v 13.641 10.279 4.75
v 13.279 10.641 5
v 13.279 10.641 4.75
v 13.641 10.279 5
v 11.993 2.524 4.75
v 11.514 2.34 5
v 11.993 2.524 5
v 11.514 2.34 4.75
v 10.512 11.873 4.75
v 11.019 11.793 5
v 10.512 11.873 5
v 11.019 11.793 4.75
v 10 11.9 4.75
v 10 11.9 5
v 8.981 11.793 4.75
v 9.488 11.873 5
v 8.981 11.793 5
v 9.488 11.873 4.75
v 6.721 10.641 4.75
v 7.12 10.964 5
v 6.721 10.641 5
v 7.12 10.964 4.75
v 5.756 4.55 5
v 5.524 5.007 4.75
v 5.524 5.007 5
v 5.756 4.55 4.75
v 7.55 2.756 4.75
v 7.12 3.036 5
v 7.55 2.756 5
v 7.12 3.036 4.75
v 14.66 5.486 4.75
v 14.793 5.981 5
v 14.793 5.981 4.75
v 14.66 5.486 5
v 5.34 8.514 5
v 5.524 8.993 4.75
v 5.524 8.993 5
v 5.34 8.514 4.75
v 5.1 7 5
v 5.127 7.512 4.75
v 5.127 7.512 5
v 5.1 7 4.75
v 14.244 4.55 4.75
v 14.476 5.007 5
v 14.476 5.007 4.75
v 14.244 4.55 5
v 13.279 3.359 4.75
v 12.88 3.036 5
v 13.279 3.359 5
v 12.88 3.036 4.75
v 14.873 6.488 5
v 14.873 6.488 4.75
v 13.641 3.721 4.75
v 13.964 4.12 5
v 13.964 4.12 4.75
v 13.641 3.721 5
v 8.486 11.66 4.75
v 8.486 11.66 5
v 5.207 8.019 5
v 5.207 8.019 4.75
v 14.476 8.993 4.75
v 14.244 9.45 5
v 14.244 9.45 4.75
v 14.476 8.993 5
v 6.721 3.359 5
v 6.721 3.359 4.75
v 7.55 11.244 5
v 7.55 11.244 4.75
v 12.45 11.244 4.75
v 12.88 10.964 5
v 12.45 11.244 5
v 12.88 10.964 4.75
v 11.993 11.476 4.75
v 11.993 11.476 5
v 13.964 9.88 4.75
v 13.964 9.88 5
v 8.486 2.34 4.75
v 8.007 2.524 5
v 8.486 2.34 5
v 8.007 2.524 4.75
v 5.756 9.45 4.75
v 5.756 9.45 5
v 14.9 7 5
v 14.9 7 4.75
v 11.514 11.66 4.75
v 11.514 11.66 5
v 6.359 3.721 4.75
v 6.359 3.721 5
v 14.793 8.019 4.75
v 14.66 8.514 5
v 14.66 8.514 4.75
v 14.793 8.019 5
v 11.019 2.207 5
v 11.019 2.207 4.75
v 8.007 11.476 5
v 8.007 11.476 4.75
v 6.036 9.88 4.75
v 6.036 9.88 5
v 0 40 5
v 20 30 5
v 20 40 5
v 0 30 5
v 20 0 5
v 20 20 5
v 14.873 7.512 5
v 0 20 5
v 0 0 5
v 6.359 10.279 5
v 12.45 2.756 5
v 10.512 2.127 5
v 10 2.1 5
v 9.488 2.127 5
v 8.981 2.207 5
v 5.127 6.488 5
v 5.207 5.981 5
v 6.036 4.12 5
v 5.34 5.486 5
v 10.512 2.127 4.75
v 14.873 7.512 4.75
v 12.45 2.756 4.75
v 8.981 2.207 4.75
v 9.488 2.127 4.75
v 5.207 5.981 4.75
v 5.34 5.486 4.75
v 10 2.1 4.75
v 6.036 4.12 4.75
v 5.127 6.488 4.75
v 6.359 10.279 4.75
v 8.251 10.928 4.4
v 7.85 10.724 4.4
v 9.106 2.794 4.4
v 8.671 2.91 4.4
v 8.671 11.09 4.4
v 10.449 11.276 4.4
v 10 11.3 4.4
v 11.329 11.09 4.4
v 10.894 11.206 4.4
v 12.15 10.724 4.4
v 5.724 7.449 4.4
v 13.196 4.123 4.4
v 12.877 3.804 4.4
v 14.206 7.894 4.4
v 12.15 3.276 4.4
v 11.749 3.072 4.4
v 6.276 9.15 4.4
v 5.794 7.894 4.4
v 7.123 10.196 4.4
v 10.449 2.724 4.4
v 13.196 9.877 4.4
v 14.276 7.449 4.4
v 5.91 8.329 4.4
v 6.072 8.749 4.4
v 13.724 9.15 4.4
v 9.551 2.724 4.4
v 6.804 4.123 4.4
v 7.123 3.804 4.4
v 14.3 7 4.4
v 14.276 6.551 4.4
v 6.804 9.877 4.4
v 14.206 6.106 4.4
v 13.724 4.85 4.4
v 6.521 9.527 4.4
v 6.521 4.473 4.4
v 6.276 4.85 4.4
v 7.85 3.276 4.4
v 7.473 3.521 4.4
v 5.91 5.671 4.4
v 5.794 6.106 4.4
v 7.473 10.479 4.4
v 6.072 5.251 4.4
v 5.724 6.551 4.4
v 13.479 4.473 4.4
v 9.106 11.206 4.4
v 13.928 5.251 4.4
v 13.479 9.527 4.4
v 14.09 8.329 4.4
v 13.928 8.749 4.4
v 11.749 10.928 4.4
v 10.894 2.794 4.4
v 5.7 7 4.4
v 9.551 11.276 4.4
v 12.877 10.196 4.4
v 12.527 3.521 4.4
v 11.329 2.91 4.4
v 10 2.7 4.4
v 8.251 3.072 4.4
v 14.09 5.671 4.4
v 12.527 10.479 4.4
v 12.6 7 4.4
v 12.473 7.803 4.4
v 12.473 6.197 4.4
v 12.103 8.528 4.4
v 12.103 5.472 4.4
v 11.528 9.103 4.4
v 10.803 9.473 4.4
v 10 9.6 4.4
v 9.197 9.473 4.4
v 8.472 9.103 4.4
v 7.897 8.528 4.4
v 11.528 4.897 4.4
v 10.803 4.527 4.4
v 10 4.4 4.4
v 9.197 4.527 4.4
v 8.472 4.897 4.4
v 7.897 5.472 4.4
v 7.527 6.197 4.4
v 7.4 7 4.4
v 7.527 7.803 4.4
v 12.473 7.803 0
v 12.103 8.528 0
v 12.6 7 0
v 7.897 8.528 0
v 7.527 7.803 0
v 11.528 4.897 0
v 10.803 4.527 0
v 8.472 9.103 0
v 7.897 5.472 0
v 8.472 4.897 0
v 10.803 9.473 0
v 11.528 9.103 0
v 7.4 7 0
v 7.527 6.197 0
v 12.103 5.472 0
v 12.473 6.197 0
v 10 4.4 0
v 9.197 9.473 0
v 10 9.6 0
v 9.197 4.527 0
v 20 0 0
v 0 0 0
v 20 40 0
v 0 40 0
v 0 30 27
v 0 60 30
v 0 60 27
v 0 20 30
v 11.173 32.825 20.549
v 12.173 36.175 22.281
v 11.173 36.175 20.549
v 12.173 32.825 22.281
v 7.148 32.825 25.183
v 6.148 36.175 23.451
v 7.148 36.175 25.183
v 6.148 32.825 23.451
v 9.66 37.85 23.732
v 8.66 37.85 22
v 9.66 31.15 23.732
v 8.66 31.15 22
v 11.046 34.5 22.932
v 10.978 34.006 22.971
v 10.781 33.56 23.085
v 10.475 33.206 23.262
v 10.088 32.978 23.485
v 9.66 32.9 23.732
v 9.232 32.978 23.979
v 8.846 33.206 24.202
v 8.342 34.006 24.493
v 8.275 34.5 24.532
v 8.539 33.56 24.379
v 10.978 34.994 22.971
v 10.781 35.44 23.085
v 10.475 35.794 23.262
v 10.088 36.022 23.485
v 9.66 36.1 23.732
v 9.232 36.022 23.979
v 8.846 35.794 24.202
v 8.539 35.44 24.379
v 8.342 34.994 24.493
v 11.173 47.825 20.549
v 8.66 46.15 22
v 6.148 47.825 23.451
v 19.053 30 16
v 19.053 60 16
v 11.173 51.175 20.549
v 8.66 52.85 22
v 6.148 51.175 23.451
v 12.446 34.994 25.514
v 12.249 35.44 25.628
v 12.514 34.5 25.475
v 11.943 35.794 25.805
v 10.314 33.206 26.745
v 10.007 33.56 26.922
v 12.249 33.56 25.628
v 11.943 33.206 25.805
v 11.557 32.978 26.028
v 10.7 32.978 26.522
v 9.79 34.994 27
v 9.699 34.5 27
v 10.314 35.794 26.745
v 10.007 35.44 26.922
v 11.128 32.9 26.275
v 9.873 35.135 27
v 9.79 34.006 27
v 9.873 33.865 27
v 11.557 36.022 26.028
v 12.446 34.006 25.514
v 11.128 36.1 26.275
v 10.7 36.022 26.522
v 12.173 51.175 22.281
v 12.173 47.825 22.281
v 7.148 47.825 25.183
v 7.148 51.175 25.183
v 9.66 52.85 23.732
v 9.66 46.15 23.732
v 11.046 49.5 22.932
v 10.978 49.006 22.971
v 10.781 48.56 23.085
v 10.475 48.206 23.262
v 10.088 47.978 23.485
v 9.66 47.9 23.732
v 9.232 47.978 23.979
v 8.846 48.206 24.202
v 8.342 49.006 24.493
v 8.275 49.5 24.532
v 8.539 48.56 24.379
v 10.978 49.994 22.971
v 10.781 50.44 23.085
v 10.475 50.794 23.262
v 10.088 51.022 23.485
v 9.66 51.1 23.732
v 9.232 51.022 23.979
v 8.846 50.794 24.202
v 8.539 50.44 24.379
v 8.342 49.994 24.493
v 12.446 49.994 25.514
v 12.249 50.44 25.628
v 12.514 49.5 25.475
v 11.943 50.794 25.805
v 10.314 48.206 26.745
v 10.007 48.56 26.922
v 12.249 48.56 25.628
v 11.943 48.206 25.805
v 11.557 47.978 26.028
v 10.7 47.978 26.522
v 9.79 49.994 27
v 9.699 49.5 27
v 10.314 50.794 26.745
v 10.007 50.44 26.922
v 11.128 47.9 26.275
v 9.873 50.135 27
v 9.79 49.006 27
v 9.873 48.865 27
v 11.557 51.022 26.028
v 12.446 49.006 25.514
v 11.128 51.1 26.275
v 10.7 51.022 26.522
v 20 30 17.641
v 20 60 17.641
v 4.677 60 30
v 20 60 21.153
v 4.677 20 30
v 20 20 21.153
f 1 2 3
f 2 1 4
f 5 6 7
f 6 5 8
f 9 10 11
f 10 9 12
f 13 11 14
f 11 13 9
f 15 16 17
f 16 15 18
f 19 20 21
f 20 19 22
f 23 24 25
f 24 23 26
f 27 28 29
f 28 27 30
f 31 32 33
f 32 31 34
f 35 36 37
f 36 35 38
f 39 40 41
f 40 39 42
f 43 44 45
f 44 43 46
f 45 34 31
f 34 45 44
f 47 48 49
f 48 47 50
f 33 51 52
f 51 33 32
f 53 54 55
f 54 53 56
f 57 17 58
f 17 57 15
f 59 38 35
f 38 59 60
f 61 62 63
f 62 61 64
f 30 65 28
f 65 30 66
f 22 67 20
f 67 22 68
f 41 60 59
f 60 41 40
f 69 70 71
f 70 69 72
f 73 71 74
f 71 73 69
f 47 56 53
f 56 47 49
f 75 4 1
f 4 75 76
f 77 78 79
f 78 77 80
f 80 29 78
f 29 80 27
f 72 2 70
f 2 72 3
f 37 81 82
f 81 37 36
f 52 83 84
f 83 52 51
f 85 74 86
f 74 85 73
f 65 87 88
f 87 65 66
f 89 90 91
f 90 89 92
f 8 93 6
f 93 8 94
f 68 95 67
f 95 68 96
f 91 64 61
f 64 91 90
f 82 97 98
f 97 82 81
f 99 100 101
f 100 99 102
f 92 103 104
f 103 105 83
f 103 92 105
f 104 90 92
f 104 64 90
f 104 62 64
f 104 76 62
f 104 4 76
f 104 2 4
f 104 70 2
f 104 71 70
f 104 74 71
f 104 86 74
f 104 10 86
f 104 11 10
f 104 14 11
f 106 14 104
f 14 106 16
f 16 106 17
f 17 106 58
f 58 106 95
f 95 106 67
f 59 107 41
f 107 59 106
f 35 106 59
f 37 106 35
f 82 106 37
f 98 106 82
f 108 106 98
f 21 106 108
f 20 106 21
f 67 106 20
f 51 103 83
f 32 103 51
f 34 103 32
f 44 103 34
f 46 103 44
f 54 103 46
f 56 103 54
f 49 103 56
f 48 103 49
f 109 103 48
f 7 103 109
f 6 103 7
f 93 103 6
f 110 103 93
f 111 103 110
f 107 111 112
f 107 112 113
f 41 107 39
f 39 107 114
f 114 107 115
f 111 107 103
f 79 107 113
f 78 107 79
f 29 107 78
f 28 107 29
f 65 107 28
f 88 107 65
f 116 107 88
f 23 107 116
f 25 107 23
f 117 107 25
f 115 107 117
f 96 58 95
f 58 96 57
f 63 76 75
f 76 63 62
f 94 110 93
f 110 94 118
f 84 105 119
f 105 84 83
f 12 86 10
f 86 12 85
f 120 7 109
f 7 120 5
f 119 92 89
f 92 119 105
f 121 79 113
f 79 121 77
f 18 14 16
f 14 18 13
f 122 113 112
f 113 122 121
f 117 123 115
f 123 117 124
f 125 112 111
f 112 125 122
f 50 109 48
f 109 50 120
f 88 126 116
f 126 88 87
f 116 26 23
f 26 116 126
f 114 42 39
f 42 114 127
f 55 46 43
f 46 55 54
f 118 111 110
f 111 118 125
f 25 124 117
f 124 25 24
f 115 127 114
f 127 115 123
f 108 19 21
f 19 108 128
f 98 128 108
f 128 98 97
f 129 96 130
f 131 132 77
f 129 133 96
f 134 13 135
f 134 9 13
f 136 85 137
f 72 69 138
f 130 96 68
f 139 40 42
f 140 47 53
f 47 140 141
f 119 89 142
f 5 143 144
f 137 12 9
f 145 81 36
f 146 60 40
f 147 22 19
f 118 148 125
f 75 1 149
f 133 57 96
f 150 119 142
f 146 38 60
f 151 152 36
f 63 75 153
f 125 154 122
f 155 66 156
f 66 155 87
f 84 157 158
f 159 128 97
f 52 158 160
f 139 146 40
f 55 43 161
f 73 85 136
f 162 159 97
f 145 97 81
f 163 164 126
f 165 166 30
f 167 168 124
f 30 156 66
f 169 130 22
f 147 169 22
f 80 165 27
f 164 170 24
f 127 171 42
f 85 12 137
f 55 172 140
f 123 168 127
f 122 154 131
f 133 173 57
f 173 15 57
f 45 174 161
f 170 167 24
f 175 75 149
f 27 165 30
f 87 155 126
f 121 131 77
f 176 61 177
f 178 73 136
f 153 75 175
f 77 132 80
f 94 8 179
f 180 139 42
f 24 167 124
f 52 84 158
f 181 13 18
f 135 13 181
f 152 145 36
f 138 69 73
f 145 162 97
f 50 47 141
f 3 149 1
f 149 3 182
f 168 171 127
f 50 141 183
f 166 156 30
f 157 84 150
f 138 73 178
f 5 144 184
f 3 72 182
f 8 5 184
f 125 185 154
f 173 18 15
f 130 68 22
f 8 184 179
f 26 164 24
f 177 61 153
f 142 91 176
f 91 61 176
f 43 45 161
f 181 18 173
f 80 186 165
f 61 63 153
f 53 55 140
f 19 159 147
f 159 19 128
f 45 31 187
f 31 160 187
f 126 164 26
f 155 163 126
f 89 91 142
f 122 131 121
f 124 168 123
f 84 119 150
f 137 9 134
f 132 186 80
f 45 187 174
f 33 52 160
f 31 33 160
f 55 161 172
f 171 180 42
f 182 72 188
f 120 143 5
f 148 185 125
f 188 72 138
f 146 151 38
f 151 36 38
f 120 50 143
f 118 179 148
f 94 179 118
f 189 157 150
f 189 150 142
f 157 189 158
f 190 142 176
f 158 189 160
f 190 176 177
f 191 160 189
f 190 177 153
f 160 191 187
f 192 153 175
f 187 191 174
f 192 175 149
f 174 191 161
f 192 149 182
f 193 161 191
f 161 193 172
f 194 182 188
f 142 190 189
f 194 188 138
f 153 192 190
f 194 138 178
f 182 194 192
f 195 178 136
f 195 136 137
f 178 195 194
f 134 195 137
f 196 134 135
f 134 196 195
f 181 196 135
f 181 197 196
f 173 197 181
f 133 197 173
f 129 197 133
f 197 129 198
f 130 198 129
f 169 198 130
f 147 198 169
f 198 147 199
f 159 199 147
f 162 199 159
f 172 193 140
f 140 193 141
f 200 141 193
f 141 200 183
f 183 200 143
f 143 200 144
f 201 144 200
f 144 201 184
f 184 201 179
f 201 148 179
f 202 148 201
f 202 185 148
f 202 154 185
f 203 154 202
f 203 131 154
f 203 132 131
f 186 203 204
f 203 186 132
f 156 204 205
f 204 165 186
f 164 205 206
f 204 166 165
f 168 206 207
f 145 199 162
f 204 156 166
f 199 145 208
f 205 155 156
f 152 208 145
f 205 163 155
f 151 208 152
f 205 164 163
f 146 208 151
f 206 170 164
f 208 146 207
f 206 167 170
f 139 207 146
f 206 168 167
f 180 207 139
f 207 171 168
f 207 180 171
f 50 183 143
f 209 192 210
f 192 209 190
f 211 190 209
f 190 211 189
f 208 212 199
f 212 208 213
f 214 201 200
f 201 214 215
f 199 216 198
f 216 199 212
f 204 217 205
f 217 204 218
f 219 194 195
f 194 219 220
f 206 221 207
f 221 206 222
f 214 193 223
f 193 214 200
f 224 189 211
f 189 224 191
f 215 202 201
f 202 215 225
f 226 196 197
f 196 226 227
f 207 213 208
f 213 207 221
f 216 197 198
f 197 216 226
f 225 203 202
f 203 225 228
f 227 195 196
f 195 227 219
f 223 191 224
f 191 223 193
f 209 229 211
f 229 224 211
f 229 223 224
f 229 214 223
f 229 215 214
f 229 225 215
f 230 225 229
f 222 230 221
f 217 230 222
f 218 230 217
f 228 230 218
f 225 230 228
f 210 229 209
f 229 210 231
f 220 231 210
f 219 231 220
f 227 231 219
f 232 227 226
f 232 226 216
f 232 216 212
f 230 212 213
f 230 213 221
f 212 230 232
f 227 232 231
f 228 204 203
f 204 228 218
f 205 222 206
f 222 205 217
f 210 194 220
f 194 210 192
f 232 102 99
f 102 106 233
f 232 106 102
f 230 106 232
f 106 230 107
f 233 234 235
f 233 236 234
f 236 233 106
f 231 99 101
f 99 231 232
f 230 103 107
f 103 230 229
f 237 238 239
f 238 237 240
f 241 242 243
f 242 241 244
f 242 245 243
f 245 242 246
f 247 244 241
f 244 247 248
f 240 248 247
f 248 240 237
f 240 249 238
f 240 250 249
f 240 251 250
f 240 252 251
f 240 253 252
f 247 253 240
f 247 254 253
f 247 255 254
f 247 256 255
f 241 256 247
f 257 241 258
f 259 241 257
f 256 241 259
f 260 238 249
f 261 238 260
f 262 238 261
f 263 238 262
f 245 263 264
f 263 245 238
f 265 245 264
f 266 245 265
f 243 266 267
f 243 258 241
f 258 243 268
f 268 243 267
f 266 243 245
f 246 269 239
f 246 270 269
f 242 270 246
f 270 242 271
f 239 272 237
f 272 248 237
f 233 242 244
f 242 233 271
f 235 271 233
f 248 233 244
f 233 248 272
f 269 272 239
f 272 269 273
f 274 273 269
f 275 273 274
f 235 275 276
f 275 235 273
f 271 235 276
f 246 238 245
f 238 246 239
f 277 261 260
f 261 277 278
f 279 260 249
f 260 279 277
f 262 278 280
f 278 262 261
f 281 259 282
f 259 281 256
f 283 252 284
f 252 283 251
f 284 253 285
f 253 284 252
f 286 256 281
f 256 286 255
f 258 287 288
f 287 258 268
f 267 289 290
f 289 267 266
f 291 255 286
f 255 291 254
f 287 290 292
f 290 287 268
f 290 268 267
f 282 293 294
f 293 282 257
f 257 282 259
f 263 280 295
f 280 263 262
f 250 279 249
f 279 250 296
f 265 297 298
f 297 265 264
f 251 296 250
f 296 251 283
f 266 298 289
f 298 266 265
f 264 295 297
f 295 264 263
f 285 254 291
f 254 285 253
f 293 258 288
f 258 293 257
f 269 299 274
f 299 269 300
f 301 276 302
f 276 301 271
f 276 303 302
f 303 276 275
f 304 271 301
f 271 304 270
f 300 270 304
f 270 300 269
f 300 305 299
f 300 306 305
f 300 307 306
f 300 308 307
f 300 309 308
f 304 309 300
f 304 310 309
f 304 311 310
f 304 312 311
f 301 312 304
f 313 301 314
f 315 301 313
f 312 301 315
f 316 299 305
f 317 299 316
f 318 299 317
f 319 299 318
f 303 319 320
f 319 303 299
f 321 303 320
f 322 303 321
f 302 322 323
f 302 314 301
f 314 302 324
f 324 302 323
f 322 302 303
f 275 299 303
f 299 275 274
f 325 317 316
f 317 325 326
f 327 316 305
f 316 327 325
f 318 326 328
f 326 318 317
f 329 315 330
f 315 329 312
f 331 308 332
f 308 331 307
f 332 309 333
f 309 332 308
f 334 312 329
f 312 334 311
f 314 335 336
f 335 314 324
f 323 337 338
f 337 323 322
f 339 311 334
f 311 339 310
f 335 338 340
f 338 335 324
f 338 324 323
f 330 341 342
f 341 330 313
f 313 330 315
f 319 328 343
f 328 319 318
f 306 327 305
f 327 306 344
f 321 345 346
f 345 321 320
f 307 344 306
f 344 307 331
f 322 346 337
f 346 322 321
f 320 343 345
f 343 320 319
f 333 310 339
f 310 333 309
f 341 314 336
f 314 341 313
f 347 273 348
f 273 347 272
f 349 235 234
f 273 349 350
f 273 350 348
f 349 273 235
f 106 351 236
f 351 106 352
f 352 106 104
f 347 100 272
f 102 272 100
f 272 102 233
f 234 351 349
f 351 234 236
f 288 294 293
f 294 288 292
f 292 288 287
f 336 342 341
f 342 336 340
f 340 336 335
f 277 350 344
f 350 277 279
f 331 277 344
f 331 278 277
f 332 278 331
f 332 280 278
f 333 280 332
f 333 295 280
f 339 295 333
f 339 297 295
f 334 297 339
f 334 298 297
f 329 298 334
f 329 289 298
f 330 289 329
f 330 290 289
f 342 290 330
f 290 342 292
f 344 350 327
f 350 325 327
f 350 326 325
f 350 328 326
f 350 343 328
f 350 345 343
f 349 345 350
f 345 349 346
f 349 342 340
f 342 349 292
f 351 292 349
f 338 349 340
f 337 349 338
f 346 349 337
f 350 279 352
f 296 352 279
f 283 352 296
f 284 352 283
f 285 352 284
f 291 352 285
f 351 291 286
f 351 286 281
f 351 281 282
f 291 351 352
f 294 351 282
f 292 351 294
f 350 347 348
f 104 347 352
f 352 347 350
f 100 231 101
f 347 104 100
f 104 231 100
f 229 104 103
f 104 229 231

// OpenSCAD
/*
 * non-adjustable, permanent 30 degree mount foot for
 * reprapdiscount_full_graphic_smart_controller_box.scad
 * see https://www.thingiverse.com/thing:861091
 *
 * Use 2x 10mm M3 bolts to attach to the screen housing
 * Use 1x 10mm M5 bolt to attach to a T-nut in a 20mm V-slot
 *
 * Copyright 2021 Alex Volkov <alex@flamy.ca>
 * 
 * License: Attribution-ShareAlike 4.0 International (CC BY-SA)
 * https://creativecommons.org/licenses/by-sa/4.0/
 *
 * Version 1.0 2021-06-24 Initial publication
 */


include <../libs/hardware-recess.scad>;


FOOT_BASE = 40;

//If bottom of the peg should have aluminium profile notch
ALU_MOUNT = false;

mat_thick = 5;
top_shave=27;
module mountcube(x=22, y=30, z=mat_thick){
    cube([x, y, z]);
}


module mount_foot(alu_mount){
    difference(){
        union(){
            mountcube(y=40);
            if(alu_mount){
                translate([0, FOOT_BASE, 0])
                    rotate([180, 0,0 ])
                        alu_connector(FOOT_BASE, 0);
            }
        }
        if (alu_mount){
            translate([10, 7, 0 - ALU_PROFILE_H])
                //cylinder(h=mat_thick + ALU_PROFILE_H , d=M_DIM[5][0], $fn=50);
                hole_w_end(mat_thick + ALU_PROFILE_H, 0.5, "round", M_DIM[5][0]);
        } else {
            translate([10, 7, 0])
                hole_w_end(mat_thick, 0.5, "round", M_DIM[5][0]);
        }
    }
}
module connector(){
    // Connector foot
    rotate([90,0,0])mountcube(z=mat_thick*2);
}

module pedestal(x, y){
    difference(){
        mountcube(x=x, y=y);
        translate([0,2,0]){
            translate([10, 7.5, 0]) hole_w_end(mat_thick, 2, "hex", M_DIM[3][0], flip=true);
            translate([10, 7.5*3, 0]) hole_w_end(mat_thick, 2, "hex", M_DIM[3][0], flip=true);
        }
    }
}



difference(){
    union(){
        mount_foot(alu_mount=ALU_MOUNT);
        difference(){
            union(){
                
                translate([0,30,0])connector();
                translate([0, 25, top_shave])rotate([0, 30, 0])pedestal(x=22,y=35);
                // fill in gap between podium and base
                translate([0, 25, top_shave])cube([10, 35, 10]);
            }
            //shave off the top
            translate([0, 20, top_shave+mat_thick+0.7])
                rotate([0, 30, 0])
                    mountcube(x=25, y=FOOT_BASE, z=10);
        }
        
    }
    
    //Shaving off front to simplify printing
    translate([20, 0, 0])
        cube([30, 60, 30]);
    //Shaving off top to simplify printing
    translate([0, 0, 30])
        cube([30, 60, 30]);
    
}
